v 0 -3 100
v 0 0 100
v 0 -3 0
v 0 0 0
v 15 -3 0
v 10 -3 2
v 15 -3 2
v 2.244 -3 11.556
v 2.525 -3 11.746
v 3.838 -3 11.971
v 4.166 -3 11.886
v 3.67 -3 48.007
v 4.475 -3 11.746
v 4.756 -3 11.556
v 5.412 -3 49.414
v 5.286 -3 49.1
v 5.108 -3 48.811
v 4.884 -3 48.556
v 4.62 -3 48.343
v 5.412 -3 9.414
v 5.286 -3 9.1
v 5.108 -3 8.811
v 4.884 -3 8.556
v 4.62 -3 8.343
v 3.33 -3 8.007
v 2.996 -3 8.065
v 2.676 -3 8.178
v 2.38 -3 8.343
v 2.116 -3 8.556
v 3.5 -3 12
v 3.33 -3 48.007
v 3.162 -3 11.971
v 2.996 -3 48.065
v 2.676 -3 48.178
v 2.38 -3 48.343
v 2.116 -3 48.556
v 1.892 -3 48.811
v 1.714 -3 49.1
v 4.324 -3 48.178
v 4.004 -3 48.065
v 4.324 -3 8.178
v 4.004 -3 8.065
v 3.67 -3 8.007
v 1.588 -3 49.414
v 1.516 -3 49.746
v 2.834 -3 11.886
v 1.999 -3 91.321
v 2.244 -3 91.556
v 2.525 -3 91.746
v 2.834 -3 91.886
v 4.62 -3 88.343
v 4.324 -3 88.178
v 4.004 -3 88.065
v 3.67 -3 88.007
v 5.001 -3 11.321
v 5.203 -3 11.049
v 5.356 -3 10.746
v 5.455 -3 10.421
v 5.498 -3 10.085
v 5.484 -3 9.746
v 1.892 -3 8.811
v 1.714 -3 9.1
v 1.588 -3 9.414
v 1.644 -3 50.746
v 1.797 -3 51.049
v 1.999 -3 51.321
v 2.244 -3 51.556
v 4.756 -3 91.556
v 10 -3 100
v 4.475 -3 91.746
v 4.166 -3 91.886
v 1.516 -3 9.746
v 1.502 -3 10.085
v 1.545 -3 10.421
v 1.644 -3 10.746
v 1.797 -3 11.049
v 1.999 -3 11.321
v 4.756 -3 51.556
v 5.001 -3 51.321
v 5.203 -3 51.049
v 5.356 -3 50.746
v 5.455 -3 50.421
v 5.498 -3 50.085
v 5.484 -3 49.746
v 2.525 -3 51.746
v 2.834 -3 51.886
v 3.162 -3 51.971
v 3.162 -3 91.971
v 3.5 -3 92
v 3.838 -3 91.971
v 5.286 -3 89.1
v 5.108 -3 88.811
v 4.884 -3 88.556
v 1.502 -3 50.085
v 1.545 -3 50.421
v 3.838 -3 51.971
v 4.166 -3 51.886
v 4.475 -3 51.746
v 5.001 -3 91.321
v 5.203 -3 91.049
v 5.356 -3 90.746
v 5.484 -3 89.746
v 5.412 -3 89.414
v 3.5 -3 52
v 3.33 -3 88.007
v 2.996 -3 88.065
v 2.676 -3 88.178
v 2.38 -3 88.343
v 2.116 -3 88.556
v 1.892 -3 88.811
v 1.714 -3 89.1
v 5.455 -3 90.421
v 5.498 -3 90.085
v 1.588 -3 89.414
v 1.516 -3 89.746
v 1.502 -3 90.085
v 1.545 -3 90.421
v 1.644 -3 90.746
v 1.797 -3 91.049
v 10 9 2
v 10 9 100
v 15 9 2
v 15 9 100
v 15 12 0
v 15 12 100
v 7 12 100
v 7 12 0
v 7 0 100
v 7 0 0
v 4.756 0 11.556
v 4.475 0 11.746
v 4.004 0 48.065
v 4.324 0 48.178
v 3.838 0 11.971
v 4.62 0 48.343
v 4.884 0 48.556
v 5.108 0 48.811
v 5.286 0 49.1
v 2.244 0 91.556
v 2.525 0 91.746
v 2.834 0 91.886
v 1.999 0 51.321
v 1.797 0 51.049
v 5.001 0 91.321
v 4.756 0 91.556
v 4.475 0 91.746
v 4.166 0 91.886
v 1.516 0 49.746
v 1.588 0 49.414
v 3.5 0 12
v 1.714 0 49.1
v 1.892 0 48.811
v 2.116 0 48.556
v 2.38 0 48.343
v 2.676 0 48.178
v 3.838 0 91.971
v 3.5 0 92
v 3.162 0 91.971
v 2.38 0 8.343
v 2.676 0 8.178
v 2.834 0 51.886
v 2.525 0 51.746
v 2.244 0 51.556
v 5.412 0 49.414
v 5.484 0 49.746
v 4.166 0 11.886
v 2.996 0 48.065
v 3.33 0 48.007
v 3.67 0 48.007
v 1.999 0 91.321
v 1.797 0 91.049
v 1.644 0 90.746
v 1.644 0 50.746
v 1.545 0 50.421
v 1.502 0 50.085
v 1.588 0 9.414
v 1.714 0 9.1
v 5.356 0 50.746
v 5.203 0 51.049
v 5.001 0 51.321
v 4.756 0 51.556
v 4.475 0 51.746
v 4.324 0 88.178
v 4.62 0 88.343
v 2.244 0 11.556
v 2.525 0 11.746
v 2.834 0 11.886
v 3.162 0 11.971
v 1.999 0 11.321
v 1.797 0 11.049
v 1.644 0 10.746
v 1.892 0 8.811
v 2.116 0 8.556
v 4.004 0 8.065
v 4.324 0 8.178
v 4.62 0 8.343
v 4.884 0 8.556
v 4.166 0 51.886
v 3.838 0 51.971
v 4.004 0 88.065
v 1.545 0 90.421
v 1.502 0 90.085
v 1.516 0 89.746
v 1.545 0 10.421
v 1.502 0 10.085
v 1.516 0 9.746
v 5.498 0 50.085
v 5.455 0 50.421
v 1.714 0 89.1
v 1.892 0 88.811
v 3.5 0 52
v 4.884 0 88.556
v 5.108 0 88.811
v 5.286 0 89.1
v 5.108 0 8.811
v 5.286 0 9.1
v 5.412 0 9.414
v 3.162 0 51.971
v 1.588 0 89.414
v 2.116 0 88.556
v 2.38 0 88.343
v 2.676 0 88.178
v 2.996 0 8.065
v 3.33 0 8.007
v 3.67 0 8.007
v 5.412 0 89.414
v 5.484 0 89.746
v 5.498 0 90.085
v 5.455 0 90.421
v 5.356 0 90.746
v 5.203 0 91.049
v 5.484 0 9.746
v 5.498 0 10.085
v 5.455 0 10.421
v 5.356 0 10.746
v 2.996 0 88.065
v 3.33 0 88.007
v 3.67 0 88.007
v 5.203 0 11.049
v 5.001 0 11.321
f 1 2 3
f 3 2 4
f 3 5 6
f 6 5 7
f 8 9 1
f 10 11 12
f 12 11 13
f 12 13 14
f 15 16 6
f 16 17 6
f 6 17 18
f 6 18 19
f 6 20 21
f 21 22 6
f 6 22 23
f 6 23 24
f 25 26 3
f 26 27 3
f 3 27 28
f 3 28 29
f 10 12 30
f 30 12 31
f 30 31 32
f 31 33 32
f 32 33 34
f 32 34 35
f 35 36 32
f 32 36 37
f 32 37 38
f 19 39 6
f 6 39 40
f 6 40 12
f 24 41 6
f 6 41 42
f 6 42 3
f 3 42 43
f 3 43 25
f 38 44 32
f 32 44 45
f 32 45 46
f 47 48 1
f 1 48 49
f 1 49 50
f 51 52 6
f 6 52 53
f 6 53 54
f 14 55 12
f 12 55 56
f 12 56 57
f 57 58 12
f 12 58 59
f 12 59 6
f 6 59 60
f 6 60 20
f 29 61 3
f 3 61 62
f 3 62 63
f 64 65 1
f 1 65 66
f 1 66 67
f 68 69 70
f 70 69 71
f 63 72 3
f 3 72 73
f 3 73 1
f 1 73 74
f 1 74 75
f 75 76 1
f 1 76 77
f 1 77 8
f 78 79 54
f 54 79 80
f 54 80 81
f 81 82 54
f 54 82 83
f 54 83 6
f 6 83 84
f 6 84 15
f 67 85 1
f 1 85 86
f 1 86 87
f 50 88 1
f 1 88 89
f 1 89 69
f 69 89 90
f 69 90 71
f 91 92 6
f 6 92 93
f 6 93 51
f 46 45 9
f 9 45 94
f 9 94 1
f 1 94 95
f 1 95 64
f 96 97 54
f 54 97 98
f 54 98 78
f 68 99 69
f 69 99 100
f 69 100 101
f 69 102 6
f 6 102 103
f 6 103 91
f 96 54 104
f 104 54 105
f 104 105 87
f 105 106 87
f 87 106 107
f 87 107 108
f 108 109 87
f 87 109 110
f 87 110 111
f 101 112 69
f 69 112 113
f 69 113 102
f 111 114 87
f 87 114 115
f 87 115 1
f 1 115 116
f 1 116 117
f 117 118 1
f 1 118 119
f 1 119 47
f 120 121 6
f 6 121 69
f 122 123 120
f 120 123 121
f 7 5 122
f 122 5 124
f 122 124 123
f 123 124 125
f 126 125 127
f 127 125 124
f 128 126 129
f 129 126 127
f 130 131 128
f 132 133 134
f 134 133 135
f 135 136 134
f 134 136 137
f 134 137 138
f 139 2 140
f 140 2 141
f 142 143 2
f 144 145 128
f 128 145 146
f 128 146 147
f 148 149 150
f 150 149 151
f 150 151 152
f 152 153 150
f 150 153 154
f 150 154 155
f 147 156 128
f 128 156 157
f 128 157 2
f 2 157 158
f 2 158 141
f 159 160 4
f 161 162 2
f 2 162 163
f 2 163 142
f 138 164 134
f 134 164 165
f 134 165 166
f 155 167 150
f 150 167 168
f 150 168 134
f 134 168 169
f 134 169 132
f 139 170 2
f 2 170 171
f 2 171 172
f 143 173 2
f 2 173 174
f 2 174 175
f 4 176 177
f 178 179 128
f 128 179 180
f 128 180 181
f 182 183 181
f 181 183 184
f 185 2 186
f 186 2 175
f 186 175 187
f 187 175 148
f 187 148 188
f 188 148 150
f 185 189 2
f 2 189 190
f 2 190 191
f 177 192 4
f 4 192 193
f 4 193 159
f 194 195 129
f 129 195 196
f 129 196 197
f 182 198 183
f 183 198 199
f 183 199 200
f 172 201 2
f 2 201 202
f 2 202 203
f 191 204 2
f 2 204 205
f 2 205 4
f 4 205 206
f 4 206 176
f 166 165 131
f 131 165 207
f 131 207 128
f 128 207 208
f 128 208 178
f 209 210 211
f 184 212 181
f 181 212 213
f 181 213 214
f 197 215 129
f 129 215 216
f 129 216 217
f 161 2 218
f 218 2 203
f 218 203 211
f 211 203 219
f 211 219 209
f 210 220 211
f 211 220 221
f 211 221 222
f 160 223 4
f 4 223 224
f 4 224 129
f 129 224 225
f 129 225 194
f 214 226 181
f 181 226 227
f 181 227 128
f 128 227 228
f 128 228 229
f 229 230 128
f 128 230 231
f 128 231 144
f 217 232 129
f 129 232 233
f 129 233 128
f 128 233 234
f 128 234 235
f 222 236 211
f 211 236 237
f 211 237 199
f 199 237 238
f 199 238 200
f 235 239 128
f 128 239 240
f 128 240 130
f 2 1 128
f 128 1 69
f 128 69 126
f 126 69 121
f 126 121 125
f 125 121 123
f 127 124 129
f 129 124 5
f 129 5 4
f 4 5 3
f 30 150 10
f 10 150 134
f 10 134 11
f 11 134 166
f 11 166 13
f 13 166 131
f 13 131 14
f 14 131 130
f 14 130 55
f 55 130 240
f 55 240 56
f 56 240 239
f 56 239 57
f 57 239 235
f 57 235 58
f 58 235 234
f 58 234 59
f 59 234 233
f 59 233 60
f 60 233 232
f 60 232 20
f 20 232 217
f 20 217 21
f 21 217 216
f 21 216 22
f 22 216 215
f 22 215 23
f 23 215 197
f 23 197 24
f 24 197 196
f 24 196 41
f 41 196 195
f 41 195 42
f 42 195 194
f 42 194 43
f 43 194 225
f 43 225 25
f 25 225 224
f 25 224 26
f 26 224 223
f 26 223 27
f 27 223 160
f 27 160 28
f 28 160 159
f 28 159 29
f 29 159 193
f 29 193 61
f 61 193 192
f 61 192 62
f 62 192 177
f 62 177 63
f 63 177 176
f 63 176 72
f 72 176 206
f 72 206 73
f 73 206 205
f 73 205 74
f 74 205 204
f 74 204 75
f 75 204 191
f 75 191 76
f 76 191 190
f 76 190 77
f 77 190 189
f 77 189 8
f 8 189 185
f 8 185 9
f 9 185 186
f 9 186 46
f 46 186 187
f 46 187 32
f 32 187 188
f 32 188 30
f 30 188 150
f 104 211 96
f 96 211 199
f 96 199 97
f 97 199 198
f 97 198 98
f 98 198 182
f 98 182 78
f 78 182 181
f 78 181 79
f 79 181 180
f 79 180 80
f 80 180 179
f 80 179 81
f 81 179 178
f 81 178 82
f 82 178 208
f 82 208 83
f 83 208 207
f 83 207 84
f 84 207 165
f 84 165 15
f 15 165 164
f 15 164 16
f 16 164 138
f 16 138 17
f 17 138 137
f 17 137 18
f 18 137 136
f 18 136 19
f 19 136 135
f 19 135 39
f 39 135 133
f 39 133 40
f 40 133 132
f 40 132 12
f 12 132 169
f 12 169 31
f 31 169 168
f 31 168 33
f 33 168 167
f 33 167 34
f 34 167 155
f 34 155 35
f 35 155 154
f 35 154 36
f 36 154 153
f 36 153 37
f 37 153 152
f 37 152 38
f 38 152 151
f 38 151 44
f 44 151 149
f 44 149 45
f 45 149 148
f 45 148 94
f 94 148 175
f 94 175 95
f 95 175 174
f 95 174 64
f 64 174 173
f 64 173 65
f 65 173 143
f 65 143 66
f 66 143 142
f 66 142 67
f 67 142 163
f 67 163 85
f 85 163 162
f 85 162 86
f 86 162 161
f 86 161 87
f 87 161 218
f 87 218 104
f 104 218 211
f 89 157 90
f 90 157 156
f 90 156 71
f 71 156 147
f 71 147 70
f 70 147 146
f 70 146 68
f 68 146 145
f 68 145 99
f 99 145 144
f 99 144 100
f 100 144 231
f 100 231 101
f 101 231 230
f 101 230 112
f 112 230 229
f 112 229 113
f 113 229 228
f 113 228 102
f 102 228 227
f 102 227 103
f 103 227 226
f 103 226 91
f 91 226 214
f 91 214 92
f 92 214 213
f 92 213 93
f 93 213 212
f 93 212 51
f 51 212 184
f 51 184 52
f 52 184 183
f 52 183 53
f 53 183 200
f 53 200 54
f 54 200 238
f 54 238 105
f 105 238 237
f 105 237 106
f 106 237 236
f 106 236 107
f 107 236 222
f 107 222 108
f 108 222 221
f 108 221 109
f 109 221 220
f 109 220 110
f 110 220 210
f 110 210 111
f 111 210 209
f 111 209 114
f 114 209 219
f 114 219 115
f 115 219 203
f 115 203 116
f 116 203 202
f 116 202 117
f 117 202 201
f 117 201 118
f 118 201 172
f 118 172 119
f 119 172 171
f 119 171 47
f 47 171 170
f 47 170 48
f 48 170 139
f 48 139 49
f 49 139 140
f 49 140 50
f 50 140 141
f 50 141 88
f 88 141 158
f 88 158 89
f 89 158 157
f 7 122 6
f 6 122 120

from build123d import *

# Parameters (mm, degrees)
BOSS_EXTRUDE1_DEPTH = 100
SKETCH2_R           = 2
CUT_EXTRUDE1_DEPTH  = 100
SKETCH3_W           = 5
SKETCH3_H           = 12
BOSS_EXTRUDE2_DEPTH = 2


with BuildPart() as part:
    # Sketch1 → Boss-Extrude1 (new body)
    with BuildSketch(Plane.XY):
        Polygon((0, 0), (7, 0), (7, 12), (15, 12), (15, 9), (10, 9), (10, -3), (0, -3), align=None)
    extrude(amount=BOSS_EXTRUDE1_DEPTH)

    # Sketch2 → Cut-Extrude1 (cut)
    with BuildSketch(Plane(origin=(0, 0, 0), x_dir=(1, 0, 0), z_dir=(0, 1, 0))):
        with Locations((3.5, -10)):
            Circle(SKETCH2_R)
        with Locations((3.5, -90)):
            Circle(SKETCH2_R)
        with Locations((3.5, -50)):
            Circle(SKETCH2_R)
    extrude(amount=-CUT_EXTRUDE1_DEPTH, mode=Mode.SUBTRACT)

    # Sketch3 → Boss-Extrude2 (add)
    with BuildSketch(Plane(origin=(0, 0, 0), x_dir=(-1, 0, 0), z_dir=(0, 0, -1))):
        with Locations((-12.5, 3)):
            Rectangle(SKETCH3_W, SKETCH3_H)
    extrude(amount=-BOSS_EXTRUDE2_DEPTH)


solid = part.part
